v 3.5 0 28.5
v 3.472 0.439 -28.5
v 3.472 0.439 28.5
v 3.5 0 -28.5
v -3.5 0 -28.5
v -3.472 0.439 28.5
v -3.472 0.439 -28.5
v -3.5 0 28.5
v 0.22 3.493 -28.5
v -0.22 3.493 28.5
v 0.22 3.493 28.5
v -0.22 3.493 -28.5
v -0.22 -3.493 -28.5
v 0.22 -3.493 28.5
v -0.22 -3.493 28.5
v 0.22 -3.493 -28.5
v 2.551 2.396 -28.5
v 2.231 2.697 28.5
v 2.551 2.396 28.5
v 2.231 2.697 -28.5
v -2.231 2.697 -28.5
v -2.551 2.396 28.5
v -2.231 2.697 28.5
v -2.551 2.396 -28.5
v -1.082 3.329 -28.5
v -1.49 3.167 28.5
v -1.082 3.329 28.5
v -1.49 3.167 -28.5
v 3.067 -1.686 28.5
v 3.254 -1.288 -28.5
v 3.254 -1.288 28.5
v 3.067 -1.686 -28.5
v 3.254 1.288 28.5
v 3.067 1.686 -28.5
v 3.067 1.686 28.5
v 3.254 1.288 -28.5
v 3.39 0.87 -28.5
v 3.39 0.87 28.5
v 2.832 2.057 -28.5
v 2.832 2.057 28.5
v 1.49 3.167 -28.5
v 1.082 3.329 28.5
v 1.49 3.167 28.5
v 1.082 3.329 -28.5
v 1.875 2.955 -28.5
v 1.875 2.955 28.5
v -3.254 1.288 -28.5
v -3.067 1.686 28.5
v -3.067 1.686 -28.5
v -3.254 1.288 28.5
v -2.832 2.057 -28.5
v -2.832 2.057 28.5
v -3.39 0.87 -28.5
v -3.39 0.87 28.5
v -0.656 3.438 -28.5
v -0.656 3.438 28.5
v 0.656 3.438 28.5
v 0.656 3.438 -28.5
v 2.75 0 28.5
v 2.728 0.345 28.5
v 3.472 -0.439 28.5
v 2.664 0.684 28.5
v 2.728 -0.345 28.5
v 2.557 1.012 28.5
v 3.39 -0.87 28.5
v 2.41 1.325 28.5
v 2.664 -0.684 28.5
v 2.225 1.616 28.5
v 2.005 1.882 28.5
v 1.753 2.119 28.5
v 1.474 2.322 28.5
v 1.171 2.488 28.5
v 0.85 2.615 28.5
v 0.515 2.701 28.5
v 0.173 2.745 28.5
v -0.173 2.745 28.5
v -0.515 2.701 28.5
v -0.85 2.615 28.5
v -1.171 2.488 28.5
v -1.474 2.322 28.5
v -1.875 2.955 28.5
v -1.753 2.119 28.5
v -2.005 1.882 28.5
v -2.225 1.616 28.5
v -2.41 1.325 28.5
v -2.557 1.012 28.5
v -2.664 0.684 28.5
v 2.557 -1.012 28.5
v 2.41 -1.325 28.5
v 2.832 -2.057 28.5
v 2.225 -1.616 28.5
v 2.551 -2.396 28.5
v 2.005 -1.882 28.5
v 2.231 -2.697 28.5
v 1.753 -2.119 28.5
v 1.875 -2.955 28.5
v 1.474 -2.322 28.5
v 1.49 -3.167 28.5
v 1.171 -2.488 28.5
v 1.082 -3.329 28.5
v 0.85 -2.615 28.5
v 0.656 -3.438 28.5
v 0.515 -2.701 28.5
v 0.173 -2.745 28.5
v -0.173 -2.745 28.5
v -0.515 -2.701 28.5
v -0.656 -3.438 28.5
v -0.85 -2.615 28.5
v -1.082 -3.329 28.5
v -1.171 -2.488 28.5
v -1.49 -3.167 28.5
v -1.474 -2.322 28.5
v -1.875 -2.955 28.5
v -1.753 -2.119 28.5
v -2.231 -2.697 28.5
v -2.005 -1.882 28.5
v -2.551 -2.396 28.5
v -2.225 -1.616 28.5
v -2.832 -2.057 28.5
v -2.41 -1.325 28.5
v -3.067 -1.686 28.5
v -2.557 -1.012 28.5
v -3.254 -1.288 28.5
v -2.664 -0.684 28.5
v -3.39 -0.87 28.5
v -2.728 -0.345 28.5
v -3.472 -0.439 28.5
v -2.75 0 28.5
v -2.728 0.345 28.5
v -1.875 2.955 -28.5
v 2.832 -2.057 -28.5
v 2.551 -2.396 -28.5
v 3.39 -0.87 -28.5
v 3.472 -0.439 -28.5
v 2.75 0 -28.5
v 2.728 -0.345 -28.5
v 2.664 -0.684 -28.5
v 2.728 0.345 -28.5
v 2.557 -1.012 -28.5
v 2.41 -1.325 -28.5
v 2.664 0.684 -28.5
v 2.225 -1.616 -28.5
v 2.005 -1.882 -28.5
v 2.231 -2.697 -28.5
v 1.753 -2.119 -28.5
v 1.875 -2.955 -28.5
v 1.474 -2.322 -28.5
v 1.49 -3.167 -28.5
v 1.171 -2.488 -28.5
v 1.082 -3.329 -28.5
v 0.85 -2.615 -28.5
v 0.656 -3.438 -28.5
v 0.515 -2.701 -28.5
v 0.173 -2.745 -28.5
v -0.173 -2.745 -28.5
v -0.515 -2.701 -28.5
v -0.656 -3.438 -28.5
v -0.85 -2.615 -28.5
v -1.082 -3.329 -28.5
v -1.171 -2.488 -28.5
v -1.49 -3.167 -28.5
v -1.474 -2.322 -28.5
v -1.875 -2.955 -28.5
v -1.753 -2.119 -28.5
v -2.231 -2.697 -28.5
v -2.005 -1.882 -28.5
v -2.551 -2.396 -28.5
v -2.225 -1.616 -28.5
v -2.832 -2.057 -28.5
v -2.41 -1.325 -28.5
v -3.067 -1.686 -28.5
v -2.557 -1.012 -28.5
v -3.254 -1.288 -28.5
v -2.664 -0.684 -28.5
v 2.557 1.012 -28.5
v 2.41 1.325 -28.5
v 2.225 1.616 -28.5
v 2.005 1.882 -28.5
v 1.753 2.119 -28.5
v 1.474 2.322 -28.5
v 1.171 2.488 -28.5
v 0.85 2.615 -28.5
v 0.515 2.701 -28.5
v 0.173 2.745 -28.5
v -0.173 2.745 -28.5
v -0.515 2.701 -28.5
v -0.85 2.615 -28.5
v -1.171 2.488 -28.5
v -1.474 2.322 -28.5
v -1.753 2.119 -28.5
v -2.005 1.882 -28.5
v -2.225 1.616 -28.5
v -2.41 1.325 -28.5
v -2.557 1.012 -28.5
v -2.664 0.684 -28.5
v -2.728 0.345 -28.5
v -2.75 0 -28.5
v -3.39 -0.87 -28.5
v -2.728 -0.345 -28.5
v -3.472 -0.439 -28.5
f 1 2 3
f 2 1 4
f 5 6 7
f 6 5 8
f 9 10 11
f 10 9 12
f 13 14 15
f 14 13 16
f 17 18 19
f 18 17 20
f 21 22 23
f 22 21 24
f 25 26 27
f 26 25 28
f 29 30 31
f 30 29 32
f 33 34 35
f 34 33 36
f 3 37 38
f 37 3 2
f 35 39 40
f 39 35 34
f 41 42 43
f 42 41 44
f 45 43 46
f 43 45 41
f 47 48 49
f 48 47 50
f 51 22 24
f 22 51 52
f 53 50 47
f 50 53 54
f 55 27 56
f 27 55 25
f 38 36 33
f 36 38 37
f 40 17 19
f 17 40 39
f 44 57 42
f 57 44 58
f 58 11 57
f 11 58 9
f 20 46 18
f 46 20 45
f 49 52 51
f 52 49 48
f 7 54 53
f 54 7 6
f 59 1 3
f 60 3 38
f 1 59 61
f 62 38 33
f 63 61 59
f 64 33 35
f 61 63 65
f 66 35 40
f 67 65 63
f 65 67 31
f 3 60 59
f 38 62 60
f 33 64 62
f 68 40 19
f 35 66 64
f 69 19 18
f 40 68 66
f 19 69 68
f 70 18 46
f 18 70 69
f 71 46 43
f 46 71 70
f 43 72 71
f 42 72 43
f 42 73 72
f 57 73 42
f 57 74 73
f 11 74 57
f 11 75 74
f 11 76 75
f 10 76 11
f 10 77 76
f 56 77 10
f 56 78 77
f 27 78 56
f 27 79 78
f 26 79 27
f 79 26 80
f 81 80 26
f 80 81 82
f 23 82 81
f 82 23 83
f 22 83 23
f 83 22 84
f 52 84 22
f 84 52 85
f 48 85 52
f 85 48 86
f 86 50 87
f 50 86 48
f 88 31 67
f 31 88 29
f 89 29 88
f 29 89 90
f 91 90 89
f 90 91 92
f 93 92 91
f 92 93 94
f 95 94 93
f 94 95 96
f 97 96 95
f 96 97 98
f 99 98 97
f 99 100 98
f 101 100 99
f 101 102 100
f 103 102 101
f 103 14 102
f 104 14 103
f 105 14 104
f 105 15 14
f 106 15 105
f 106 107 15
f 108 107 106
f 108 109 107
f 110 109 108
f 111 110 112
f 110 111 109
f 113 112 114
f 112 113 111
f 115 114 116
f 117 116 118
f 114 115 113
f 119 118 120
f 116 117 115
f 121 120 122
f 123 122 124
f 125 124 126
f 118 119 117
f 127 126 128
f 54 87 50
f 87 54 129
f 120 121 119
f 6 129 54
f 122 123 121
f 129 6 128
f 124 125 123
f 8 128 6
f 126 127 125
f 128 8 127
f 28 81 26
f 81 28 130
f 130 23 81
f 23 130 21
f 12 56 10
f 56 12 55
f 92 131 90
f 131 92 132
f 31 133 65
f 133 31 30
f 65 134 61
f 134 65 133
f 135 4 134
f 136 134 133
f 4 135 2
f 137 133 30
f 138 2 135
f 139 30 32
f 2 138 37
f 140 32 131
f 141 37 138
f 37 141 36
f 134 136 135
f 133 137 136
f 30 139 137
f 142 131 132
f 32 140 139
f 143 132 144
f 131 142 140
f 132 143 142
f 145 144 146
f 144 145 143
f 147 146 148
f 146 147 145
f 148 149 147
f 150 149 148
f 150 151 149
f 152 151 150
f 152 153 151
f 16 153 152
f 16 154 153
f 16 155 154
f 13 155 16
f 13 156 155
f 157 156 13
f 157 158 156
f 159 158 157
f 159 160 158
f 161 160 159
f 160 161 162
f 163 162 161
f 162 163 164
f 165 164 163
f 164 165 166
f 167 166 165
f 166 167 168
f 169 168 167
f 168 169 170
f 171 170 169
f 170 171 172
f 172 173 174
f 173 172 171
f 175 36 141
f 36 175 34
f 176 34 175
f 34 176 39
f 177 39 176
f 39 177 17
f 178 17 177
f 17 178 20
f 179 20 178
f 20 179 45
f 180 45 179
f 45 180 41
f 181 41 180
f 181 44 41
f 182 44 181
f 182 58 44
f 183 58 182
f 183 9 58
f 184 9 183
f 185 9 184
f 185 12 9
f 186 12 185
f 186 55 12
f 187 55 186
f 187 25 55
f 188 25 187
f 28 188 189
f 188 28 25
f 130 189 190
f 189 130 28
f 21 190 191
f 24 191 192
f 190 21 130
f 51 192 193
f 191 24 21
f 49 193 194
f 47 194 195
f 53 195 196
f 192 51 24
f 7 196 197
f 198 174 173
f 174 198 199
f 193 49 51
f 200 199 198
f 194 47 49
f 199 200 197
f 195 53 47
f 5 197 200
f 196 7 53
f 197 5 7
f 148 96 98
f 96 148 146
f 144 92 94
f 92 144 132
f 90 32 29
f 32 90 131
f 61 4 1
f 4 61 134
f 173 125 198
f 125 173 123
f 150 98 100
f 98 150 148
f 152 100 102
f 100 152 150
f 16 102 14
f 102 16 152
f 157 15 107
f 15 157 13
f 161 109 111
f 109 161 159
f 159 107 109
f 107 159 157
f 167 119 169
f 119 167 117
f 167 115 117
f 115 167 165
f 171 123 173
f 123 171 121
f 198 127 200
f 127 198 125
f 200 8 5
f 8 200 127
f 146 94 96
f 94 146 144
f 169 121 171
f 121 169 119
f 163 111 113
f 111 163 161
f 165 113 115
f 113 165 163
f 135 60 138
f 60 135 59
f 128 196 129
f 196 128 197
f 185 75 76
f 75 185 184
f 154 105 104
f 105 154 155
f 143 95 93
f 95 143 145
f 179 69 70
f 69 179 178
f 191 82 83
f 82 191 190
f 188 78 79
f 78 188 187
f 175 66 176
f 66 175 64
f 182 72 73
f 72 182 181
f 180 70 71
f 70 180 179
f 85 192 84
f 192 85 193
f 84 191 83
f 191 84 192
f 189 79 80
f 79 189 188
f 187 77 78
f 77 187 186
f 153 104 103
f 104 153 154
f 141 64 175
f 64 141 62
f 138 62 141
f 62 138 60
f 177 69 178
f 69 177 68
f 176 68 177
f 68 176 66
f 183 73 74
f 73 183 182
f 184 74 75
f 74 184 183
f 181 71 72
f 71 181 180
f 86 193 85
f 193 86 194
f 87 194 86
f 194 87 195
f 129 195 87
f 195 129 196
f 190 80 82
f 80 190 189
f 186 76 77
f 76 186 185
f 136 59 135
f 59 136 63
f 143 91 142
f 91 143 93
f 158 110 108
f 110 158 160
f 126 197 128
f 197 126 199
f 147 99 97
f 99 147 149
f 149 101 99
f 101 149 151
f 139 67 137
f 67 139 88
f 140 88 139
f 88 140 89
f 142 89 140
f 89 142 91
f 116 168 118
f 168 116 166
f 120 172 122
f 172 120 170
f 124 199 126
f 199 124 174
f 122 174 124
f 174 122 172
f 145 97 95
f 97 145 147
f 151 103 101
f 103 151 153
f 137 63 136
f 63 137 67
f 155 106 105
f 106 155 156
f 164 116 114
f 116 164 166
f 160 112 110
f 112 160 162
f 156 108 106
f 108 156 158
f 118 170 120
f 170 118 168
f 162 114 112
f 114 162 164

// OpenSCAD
$fn = 50;


difference() {
	union() {
		translate(v = [0, 0, -28.5000000000]) {
			cylinder(h = 57, r = 3.5000000000);
		}
	}
	union() {
		translate(v = [0, 0, -100.0000000000]) {
			cylinder(h = 200, r = 2.7500000000);
		}
	}
}
